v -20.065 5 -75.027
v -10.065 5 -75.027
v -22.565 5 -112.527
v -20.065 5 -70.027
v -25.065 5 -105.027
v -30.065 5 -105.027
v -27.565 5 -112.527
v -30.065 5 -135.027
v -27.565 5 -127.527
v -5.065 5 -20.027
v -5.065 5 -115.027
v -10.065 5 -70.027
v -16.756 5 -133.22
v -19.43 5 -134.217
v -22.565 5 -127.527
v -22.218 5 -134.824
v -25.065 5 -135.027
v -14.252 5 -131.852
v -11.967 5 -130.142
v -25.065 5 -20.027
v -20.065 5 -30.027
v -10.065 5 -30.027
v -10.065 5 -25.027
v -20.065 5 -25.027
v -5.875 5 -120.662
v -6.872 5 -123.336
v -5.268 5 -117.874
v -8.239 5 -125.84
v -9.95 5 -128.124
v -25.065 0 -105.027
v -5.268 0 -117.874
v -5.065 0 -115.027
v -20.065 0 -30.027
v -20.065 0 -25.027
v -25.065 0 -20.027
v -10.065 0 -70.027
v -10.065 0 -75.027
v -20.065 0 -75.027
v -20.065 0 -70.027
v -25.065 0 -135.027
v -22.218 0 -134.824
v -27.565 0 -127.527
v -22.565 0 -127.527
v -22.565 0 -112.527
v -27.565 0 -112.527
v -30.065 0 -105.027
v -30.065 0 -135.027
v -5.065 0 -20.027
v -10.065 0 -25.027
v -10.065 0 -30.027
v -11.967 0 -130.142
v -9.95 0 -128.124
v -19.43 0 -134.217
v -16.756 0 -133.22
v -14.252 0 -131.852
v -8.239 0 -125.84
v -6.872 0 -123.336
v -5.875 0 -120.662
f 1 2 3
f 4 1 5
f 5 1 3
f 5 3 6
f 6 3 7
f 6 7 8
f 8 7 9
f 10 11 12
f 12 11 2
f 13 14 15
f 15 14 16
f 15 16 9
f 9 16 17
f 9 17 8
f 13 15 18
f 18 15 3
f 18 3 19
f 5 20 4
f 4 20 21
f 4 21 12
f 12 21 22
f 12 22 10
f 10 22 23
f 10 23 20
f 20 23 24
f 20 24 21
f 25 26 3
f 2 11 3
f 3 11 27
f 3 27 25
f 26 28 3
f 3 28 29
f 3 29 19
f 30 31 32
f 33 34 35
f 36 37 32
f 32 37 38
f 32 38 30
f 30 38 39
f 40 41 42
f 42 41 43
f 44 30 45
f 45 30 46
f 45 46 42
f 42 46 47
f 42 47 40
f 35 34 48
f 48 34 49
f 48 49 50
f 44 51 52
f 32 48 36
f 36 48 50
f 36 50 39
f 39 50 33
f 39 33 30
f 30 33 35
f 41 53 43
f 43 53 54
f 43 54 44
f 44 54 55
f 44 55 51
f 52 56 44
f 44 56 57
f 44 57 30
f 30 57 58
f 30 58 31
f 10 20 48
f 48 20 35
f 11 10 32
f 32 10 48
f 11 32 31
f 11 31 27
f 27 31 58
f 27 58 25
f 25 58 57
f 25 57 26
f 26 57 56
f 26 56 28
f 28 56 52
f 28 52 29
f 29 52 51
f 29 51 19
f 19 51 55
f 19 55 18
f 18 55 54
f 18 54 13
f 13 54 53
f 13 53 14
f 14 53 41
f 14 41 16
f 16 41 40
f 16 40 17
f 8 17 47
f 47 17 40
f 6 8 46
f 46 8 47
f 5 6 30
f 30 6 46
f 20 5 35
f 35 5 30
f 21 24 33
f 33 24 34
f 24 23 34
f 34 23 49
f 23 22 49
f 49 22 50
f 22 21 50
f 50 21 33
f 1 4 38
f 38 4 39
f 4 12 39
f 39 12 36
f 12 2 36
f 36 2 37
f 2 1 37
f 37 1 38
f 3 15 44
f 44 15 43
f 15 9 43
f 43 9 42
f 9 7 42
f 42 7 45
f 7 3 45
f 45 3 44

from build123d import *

# Parameters (mm, degrees)
SKETCH1_W           = 10
SKETCH1_H           = 5
SKETCH1_W_2         = 5
SKETCH1_H_2         = 15
BOSS_EXTRUDE1_DEPTH = 5


with BuildPart() as part:
    # Sketch1 → Boss-Extrude1 (new body)
    with BuildSketch(Plane(origin=(0, 0, 0), x_dir=(1, 0, 0), z_dir=(0, 1, 0))):
        with BuildLine():
            Line((-25.064538889, 20.027213551), (-5.064538889, 20.027213551))
            Line((-5.064538889, 20.027213551), (-5.064538889, 80.027213551))
            Line((-5.064538889, 80.027213551), (-5.064538889, 115.027213551))
            ThreePointArc((-5.064538889, 115.027213551), (-10.922403265, 129.169349175), (-25.064538889, 135.027213551))
            Line((-25.064538889, 135.027213551), (-30.064538889, 135.027213551))
            Line((-30.064538889, 135.027213551), (-30.064538889, 105.027213551))
            Line((-30.064538889, 105.027213551), (-25.064538889, 105.027213551))
            Line((-25.064538889, 105.027213551), (-25.064538889, 80.027213551))
            Line((-25.064538889, 80.027213551), (-25.064538889, 20.027213551))
        make_face()
        with Locations((-15.064538889, 27.527213551)):
            Rectangle(SKETCH1_W, SKETCH1_H, mode=Mode.SUBTRACT)
        with Locations((-15.064538889, 72.527213551)):
            Rectangle(SKETCH1_W, SKETCH1_H, mode=Mode.SUBTRACT)
        with Locations((-25.064538889, 120.027213551)):
            Rectangle(SKETCH1_W_2, SKETCH1_H_2, mode=Mode.SUBTRACT)
    extrude(amount=BOSS_EXTRUDE1_DEPTH)


solid = part.part
